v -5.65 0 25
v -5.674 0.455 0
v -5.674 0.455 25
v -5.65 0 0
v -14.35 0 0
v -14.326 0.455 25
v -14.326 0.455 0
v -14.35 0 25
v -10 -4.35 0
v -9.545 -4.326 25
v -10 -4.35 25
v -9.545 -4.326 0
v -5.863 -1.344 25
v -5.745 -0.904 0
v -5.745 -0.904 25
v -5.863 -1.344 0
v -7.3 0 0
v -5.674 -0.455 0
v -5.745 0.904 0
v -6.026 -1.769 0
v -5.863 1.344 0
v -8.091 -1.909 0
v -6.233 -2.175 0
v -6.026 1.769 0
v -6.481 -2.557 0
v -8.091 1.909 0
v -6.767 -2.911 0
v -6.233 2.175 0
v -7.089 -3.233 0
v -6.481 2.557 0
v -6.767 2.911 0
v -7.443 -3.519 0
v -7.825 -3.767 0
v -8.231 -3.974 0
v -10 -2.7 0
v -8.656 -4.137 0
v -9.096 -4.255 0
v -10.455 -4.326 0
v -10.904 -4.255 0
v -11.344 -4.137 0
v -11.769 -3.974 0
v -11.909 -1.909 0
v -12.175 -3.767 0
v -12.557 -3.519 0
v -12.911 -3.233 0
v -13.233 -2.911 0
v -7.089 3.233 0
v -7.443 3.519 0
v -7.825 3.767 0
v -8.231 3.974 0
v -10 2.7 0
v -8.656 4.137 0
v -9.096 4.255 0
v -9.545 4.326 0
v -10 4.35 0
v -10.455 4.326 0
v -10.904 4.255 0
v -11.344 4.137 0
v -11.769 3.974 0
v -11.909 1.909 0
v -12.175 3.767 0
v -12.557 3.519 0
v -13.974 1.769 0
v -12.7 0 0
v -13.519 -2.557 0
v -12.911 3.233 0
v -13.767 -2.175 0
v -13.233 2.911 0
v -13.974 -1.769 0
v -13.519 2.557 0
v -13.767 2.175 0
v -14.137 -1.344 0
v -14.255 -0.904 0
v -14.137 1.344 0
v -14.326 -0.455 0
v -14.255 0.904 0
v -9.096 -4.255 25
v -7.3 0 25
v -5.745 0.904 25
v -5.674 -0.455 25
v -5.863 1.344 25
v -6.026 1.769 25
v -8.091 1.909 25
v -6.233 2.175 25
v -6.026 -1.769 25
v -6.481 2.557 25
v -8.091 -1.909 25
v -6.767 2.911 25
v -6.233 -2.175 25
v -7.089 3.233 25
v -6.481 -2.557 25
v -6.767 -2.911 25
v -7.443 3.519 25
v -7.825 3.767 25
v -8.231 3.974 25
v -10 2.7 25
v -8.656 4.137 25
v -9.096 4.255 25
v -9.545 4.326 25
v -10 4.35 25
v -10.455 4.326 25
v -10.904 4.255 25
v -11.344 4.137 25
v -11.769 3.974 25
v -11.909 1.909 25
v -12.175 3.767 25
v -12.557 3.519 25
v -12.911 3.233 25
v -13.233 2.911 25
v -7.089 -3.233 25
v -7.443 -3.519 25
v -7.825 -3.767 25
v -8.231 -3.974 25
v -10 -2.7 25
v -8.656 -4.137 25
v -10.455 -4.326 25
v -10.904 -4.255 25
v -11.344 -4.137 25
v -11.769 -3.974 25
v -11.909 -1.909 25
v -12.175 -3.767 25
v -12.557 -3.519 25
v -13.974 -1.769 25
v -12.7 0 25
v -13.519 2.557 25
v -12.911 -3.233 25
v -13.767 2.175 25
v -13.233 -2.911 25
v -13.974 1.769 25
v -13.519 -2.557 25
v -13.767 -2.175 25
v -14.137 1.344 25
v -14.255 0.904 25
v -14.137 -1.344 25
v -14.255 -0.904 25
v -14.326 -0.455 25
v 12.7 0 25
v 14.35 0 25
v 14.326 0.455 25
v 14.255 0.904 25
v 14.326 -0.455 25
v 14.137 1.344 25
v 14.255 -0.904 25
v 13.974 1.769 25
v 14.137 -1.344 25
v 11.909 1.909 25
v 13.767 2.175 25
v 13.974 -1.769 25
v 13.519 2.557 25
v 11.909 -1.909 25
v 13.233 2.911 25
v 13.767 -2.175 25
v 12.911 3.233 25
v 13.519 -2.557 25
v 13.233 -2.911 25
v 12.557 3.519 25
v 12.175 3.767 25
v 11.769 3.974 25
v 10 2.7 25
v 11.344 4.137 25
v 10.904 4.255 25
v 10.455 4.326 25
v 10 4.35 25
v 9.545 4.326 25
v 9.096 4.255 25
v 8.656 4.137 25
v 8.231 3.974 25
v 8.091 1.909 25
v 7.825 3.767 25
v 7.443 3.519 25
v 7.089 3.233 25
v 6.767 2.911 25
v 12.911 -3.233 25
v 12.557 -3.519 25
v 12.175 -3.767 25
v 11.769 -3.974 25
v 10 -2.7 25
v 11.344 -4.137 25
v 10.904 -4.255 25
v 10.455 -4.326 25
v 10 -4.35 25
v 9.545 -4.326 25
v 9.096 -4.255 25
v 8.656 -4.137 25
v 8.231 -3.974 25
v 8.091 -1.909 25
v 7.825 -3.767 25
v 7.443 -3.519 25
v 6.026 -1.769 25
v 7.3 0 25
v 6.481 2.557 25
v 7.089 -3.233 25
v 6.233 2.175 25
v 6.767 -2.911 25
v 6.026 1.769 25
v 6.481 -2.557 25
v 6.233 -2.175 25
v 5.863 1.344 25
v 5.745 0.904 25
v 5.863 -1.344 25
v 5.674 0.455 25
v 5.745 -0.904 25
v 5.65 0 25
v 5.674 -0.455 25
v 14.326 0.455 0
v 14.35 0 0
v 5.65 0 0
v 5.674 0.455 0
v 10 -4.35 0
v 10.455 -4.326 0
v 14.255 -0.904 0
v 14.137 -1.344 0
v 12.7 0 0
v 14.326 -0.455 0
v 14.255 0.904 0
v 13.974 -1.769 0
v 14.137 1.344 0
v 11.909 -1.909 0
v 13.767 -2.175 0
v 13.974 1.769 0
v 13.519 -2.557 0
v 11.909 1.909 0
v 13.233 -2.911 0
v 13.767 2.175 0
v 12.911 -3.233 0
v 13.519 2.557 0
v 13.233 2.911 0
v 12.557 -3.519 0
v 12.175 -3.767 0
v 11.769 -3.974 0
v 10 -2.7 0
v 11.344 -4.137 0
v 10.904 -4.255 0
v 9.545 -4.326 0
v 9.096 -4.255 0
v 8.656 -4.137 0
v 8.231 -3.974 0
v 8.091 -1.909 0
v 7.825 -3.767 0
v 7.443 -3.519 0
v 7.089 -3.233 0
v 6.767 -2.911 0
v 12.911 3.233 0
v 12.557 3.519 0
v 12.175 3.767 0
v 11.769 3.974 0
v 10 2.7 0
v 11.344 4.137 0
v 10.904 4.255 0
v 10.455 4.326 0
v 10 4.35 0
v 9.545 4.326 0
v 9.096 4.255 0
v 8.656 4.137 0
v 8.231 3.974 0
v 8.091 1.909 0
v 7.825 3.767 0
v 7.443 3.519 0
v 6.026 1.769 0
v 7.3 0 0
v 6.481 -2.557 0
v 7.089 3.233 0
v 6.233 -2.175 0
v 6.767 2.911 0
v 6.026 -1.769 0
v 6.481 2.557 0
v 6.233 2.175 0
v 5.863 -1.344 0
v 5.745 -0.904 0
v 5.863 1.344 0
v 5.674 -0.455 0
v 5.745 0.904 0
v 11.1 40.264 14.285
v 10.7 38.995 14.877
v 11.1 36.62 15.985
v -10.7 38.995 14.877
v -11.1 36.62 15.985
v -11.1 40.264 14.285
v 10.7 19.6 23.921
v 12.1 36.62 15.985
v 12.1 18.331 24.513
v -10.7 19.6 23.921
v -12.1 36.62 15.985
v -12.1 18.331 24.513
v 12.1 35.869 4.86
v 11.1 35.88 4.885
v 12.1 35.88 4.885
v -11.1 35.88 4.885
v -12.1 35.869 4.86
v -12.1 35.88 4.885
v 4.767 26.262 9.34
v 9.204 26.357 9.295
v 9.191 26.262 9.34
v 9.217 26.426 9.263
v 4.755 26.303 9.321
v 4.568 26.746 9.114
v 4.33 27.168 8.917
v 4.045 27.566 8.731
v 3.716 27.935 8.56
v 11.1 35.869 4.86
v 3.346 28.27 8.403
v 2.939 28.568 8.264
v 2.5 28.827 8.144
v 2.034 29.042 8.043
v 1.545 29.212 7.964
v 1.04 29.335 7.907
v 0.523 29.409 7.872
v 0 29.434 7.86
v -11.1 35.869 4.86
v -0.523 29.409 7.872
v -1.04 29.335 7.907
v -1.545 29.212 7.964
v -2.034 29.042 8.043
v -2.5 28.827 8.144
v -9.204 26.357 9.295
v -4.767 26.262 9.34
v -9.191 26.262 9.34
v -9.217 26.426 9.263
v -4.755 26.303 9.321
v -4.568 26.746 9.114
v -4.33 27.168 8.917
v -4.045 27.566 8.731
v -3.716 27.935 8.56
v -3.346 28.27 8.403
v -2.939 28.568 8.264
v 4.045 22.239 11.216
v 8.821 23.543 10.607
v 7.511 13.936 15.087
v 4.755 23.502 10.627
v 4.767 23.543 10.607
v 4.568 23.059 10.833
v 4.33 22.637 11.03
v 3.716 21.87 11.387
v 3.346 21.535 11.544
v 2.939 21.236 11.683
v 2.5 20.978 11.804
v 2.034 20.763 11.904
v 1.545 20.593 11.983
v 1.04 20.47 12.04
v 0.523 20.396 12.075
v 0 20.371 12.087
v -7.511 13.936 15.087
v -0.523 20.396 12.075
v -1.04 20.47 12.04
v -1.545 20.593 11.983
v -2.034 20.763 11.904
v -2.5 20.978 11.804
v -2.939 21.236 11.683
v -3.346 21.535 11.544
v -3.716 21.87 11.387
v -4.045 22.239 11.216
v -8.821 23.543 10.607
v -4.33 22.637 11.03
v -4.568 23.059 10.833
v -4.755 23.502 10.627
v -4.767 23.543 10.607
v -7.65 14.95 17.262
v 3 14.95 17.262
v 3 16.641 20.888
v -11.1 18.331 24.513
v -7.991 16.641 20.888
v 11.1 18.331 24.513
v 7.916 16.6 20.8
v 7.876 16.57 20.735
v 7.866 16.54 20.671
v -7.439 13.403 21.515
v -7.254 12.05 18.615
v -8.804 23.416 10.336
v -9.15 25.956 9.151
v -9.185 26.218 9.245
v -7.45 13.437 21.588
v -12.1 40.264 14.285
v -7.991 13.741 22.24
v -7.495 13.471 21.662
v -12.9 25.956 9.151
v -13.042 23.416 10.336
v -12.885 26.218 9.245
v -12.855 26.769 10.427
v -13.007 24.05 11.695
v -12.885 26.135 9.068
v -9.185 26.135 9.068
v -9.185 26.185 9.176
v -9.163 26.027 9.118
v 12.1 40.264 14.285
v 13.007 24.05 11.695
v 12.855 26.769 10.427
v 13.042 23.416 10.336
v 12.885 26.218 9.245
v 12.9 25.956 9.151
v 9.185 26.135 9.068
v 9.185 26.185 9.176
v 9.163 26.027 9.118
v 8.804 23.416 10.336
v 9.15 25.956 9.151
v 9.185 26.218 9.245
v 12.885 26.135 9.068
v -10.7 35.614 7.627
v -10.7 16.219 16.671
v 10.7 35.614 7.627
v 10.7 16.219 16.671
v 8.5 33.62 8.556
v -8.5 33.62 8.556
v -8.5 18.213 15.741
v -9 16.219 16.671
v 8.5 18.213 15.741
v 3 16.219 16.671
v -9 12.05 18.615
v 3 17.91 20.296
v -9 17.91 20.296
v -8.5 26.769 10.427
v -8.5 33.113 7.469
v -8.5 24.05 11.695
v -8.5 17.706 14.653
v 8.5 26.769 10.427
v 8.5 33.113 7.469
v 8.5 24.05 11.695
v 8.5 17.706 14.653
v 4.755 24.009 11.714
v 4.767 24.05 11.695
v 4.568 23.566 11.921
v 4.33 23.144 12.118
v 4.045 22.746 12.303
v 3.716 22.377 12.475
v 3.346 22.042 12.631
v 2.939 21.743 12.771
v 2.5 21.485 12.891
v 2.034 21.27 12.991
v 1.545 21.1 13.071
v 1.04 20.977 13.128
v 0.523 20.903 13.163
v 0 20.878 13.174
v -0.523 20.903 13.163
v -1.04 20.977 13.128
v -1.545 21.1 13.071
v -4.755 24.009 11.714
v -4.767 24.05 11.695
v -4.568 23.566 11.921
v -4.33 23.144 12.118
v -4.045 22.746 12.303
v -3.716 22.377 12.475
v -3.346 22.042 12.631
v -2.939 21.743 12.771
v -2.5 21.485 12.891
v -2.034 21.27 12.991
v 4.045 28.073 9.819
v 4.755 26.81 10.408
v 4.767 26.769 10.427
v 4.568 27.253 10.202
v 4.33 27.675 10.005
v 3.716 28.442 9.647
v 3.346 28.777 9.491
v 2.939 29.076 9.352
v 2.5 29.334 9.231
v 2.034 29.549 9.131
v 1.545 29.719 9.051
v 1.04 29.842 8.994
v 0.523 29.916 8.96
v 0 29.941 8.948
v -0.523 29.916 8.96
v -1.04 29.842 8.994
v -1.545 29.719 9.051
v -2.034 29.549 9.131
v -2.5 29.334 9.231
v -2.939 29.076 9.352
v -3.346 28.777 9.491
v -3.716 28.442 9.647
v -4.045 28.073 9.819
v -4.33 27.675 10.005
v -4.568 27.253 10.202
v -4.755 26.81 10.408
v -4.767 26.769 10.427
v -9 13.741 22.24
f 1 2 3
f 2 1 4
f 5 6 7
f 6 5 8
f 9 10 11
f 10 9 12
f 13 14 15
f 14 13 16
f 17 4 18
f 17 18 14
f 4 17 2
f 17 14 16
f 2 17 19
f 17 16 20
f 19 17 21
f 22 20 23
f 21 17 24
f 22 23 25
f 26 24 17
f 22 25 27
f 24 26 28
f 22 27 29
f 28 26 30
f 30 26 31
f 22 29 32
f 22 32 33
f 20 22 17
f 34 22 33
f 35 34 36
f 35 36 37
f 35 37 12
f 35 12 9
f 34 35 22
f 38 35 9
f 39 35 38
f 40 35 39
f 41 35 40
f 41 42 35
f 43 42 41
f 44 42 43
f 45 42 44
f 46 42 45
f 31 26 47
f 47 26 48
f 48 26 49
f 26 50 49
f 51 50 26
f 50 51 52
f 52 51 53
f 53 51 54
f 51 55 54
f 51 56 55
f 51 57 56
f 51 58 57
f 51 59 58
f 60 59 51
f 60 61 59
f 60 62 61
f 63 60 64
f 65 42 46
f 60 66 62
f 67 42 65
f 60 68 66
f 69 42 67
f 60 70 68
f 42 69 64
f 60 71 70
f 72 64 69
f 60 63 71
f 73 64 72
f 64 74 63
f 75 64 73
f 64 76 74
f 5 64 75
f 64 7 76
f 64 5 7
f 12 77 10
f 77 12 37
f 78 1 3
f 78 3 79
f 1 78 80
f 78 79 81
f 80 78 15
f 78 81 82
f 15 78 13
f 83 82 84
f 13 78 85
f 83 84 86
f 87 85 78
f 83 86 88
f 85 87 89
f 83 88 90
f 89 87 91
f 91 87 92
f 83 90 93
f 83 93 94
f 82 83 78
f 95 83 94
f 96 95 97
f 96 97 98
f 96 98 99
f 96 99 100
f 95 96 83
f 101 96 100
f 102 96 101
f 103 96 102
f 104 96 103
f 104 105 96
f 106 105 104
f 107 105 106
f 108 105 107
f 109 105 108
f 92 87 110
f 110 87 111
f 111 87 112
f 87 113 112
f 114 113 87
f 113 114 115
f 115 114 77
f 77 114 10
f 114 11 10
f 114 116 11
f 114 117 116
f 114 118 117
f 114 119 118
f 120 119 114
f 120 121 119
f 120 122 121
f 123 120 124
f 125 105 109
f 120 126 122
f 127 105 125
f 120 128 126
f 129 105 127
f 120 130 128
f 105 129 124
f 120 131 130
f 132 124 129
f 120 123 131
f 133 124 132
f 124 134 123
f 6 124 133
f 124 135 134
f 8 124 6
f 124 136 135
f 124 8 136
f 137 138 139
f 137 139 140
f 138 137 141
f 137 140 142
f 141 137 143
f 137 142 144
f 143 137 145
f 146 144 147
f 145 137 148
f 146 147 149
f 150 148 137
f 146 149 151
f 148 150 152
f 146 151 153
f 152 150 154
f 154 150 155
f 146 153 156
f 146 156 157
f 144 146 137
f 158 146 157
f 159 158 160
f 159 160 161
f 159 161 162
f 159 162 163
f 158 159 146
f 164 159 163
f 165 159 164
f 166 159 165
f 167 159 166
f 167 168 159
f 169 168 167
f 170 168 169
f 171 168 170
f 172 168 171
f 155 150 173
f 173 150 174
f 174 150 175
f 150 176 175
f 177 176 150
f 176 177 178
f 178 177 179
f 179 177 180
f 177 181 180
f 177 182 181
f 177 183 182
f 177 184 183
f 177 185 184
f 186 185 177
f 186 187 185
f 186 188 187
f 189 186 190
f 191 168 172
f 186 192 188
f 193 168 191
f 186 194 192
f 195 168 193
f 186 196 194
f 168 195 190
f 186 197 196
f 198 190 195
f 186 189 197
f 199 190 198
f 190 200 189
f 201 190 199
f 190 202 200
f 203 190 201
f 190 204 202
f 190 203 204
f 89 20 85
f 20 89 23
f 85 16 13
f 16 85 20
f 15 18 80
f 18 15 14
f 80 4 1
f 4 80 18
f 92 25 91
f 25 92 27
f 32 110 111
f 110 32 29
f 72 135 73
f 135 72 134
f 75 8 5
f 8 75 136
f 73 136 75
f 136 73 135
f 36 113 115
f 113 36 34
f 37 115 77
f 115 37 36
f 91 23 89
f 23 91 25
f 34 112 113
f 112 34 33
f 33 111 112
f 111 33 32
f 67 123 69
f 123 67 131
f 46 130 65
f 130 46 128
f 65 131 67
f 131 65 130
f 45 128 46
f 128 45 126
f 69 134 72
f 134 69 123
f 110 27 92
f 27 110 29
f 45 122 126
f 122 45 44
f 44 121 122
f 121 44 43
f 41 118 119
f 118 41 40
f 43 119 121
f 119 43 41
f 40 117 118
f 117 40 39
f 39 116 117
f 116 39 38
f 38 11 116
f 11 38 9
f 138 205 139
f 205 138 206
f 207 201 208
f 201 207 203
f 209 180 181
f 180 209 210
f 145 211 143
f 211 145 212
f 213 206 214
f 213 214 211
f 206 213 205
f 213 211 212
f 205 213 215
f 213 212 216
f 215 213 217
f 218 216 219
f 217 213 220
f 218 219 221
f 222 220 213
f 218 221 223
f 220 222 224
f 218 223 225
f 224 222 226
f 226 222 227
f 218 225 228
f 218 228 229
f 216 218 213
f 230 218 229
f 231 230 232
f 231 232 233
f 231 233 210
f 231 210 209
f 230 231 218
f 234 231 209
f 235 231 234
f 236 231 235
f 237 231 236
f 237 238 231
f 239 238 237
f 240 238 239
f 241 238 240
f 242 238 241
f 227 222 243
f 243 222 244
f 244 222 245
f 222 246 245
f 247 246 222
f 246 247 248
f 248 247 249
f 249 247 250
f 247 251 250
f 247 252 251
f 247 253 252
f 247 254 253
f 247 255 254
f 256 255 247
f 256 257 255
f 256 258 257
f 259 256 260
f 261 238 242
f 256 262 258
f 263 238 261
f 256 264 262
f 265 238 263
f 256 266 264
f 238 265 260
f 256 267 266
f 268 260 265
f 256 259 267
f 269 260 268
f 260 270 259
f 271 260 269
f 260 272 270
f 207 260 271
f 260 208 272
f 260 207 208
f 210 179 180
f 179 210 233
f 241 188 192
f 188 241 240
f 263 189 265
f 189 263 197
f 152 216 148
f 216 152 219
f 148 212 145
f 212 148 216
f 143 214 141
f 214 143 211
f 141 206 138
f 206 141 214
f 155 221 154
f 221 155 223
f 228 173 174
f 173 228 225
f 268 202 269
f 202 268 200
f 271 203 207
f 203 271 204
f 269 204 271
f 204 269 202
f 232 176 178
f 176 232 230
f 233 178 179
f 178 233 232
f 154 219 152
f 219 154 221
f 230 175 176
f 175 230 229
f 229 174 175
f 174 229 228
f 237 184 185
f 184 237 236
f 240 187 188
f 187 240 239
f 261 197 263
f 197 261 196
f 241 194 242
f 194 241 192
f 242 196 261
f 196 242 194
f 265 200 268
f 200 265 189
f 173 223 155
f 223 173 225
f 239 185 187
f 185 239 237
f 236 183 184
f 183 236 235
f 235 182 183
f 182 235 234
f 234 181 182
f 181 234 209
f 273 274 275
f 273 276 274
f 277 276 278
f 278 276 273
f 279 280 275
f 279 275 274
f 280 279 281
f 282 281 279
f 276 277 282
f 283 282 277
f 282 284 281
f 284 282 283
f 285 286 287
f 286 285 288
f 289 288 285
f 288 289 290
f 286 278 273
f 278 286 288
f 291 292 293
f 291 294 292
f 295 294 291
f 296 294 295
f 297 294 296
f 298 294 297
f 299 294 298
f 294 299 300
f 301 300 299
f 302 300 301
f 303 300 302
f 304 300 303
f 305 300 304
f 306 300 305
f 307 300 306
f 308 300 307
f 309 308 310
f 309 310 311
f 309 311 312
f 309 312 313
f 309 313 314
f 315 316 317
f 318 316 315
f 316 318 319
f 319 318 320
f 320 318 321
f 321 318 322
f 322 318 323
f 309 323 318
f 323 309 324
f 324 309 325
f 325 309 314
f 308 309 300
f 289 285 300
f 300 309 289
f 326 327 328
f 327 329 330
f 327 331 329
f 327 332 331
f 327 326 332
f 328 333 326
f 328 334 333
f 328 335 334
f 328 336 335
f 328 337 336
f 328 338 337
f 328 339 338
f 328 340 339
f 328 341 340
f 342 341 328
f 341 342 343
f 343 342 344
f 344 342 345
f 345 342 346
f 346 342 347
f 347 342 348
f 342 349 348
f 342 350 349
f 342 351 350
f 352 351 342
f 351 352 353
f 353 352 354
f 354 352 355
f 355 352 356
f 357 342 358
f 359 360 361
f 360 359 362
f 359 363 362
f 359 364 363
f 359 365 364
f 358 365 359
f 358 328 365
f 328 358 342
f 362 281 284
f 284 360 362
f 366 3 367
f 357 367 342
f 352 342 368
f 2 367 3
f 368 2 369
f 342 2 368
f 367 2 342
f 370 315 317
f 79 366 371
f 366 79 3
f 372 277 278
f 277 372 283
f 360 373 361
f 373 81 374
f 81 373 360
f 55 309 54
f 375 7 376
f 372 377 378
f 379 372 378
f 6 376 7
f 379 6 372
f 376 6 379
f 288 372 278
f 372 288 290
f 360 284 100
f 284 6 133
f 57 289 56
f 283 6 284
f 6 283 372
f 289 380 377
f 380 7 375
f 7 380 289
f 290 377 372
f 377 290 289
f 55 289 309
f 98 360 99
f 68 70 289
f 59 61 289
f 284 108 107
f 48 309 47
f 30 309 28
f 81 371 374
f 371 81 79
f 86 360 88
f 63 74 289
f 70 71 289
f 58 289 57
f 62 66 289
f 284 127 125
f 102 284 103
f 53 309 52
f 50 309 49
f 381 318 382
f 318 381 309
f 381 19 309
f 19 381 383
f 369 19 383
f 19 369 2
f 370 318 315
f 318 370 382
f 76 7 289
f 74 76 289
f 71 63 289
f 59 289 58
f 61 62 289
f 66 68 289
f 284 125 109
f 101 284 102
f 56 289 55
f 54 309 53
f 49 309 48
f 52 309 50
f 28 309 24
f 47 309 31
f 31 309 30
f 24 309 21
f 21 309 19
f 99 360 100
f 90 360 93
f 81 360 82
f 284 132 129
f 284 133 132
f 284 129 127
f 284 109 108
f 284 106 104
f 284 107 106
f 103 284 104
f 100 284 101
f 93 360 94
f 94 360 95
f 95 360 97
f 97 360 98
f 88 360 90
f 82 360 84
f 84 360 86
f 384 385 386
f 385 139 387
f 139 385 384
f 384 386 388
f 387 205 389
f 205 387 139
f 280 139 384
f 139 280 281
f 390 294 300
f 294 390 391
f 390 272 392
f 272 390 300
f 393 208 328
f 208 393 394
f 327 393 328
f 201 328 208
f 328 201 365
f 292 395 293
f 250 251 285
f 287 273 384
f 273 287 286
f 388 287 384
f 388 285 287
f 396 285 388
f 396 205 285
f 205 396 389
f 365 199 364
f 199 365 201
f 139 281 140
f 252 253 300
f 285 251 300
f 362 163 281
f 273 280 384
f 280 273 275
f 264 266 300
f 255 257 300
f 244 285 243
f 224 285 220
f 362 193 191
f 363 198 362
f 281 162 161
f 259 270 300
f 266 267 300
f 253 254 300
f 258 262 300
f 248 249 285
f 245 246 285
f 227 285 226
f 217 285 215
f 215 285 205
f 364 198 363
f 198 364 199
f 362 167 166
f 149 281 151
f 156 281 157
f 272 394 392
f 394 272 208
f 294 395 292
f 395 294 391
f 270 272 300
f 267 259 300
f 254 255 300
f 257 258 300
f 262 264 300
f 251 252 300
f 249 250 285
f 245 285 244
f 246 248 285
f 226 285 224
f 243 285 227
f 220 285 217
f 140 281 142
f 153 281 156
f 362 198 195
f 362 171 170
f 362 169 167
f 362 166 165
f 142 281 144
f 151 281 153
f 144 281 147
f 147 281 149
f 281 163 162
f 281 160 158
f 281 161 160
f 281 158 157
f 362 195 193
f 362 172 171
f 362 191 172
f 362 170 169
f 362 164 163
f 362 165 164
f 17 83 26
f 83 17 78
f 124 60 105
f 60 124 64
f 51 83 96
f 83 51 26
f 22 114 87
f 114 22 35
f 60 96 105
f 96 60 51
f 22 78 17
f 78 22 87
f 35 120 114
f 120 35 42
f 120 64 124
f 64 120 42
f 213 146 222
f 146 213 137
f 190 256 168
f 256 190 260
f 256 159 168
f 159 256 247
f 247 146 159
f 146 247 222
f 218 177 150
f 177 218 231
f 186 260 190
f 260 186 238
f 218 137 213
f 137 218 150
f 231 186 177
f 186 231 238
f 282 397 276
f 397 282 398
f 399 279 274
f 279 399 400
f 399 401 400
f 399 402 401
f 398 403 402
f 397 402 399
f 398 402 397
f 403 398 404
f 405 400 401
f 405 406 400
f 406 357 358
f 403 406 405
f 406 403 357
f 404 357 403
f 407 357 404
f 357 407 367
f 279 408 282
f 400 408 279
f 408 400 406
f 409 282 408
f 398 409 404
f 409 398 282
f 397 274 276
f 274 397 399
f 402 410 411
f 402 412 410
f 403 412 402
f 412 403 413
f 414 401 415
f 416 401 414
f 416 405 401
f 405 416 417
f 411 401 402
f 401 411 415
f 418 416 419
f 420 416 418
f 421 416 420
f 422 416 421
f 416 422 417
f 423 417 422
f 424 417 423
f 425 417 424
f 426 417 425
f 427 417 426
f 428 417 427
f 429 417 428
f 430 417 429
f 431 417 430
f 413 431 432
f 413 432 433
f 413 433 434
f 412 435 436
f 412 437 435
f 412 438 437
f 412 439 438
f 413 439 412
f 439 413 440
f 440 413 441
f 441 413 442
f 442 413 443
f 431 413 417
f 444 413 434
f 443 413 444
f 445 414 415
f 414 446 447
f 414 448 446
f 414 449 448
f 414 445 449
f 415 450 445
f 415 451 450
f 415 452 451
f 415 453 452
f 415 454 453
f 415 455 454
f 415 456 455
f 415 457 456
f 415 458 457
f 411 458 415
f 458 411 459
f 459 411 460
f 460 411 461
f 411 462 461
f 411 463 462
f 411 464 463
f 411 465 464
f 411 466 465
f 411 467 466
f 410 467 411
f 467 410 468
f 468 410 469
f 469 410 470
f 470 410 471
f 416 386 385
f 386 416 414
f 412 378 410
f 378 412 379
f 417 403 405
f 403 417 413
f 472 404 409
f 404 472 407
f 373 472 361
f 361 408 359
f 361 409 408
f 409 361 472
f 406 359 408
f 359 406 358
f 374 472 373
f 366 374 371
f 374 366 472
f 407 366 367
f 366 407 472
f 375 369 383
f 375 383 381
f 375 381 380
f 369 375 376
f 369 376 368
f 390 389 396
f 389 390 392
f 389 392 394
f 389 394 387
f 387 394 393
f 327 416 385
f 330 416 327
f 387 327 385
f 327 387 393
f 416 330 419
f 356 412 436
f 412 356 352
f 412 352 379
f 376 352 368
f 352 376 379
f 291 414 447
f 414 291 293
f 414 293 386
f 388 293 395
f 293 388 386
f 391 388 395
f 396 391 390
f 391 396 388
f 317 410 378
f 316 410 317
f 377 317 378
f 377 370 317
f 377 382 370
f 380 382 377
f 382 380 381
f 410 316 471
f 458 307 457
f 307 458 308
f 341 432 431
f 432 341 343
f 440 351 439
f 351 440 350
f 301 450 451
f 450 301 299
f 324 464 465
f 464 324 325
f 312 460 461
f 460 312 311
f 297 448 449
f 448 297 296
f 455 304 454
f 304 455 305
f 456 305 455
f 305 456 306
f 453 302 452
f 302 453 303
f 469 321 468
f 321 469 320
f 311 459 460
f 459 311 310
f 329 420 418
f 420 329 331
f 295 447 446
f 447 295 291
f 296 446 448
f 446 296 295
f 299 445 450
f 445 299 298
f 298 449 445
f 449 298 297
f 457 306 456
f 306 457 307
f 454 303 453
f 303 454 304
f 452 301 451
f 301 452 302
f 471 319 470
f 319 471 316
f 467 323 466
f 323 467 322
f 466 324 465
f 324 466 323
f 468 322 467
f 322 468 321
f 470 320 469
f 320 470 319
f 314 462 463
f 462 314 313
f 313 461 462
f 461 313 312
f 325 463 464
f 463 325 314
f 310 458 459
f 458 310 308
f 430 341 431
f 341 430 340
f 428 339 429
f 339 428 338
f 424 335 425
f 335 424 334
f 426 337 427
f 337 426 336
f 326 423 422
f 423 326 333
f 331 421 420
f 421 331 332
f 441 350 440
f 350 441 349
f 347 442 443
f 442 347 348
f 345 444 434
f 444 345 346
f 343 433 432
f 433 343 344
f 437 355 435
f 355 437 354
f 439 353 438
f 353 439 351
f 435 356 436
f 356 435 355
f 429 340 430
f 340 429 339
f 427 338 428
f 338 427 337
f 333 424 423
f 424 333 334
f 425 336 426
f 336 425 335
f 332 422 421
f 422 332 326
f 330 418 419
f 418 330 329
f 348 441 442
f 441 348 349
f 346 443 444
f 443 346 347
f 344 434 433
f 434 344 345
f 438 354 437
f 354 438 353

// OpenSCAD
// =============================================================================
// PROJECT: UNIVERSAL GPS STANDOFF MOUNT
// VERSION: 3.6 (Sharp Corner Edition)
// DESCRIPTION: Removed corner radii on the box for cleaner gusset integration.
// =============================================================================

/* [1. FRAME SETTINGS] */
standoff_dist   = 20.0;  
standoff_dia    = 5.5;   
standoff_height = 25.0;  
wall            = 1.6; 

/* [2. GPS COMPARTMENT SETTINGS] */
gps_angle       = 25;    
gps_offset      = 15.0;  
gps_w           = 21.0;  
gps_l           = 21.0;  
gps_h           = 8.0;   
nob_height      = 1.2;

/* [3. WIRE WINDOW SETTINGS] */
wire_width      = 12.0;  
wire_window_h   = 4.0;   
// Shift the window: (-) for Left, (+) for Right. 0 is Centered.
wire_offset     = -3.0; 

/* [4. HARDWARE & RETENTION] */
zt_width        = 3.;   
zt_depth        = 1.5; 
// Corner radius now only applies to the standoff sleeves
sleeve_radius   = 2.0;
$fn = 60;

/* [5. INTERNAL CALCULATIONS] */
box_w = gps_w + (wall * 2);
box_l = gps_l + (wall * 2);
box_d_total = gps_h + nob_height + 1.2; 

// Trig to keep top flush
tilt_lift = sin(gps_angle) * (box_l/2);
box_z_pos = standoff_height - (box_d_total / 2) - tilt_lift;

// =============================================================================
// MAIN ASSEMBLY
// =============================================================================

difference() {
    // --- STEP 1: SOLID GEOMETRY ---
    union() {
        // A. Standoff Sleeves
        for(i=[-1, 1]) {
            translate([i * standoff_dist/2, 0, 0])
                cylinder(h=standoff_height, d=standoff_dia + (wall*2));
        }

        // B. GPS Outer Shell (Sharp Corners)
        translate([0, gps_offset + (box_l/2), box_z_pos]) 
            rotate([-gps_angle, 0, 0]) {
                // Main sharp-edged box
                cube([box_w, box_l, box_d_total], center=true);
                
                // Internal Corner Nobs (Remains to support PCB)
                for(x=[-1,1], y=[-1,1])
                    translate([x*(gps_w/2 - 1.5), y*(gps_l/2 - 1.5), -box_d_total/2 + 1.2])
                        cylinder(h=nob_height + 0.1, d=3);
            }

        // C. SOLID TRIANGULAR GUSSETS
        for(side=[-1, 1]) { 
            hull() {
                // Round sleeve anchor
                translate([side * standoff_dist/2, 0, 0])
                    cylinder(h=standoff_height, d=standoff_dia + (wall*2));
                
                // Sharp box anchor (Full vertical edge)
                translate([0, gps_offset + (box_l/2), box_z_pos]) 
                    rotate([-gps_angle, 0, 0])
                        translate([side * (box_w/2 - 0.5), 0, 0])
                            cube([1, box_l, box_d_total], center=true);
            }
        }
    }

    // --- STEP 2: SUBTRACTIONS ---
    
    // A. SAFETY PLANE CUT
    translate([-100, -100, standoff_height])
        cube([200, 200, 50]);

    // B. STANDOFF HOLES
    for(i=[-1, 1]) {
        translate([i * standoff_dist/2, 0, -1])
            cylinder(h=standoff_height + 2, d=standoff_dia - 0.1, $fn=8);
    }

    // C. Internal Cavity (Sharp-edged)
    translate([0, gps_offset + (box_l/2), box_z_pos])
        rotate([-gps_angle, 0, 0]) {
            
            // 1. Main GPS Cavity
            translate([0, 0, -box_d_total/2 + 1.2 + nob_height + (gps_h+5)/2])
                cube([gps_w + 0.4, gps_l + 0.4, gps_h + 5], center=true);
            
            // 2. Floor relief
            translate([0,0, -box_d_total/2 + 1.2 + (nob_height+0.1)/2])
                cube([gps_w - 4, gps_l - 4, nob_height + 0.1], center=true);
            
            // 3. OFFSET WIRE WINDOW
            translate([wire_offset, -gps_l/2 - wall, -box_d_total/2 + 1.2 + nob_height + (wire_window_h/2)])
                cube([wire_width, wall * 4, wire_window_h], center=true);

            // 4. Zip-Tie Channel
            translate([0, 0, -box_d_total/2 + 1.2 - (zt_depth/2)])
                cube([box_w + 50, zt_width, zt_depth], center=true);
                
            // 5. Ejection Hole
            translate([0, 0, -50]) cylinder(h=100, d=10);
        }
}
